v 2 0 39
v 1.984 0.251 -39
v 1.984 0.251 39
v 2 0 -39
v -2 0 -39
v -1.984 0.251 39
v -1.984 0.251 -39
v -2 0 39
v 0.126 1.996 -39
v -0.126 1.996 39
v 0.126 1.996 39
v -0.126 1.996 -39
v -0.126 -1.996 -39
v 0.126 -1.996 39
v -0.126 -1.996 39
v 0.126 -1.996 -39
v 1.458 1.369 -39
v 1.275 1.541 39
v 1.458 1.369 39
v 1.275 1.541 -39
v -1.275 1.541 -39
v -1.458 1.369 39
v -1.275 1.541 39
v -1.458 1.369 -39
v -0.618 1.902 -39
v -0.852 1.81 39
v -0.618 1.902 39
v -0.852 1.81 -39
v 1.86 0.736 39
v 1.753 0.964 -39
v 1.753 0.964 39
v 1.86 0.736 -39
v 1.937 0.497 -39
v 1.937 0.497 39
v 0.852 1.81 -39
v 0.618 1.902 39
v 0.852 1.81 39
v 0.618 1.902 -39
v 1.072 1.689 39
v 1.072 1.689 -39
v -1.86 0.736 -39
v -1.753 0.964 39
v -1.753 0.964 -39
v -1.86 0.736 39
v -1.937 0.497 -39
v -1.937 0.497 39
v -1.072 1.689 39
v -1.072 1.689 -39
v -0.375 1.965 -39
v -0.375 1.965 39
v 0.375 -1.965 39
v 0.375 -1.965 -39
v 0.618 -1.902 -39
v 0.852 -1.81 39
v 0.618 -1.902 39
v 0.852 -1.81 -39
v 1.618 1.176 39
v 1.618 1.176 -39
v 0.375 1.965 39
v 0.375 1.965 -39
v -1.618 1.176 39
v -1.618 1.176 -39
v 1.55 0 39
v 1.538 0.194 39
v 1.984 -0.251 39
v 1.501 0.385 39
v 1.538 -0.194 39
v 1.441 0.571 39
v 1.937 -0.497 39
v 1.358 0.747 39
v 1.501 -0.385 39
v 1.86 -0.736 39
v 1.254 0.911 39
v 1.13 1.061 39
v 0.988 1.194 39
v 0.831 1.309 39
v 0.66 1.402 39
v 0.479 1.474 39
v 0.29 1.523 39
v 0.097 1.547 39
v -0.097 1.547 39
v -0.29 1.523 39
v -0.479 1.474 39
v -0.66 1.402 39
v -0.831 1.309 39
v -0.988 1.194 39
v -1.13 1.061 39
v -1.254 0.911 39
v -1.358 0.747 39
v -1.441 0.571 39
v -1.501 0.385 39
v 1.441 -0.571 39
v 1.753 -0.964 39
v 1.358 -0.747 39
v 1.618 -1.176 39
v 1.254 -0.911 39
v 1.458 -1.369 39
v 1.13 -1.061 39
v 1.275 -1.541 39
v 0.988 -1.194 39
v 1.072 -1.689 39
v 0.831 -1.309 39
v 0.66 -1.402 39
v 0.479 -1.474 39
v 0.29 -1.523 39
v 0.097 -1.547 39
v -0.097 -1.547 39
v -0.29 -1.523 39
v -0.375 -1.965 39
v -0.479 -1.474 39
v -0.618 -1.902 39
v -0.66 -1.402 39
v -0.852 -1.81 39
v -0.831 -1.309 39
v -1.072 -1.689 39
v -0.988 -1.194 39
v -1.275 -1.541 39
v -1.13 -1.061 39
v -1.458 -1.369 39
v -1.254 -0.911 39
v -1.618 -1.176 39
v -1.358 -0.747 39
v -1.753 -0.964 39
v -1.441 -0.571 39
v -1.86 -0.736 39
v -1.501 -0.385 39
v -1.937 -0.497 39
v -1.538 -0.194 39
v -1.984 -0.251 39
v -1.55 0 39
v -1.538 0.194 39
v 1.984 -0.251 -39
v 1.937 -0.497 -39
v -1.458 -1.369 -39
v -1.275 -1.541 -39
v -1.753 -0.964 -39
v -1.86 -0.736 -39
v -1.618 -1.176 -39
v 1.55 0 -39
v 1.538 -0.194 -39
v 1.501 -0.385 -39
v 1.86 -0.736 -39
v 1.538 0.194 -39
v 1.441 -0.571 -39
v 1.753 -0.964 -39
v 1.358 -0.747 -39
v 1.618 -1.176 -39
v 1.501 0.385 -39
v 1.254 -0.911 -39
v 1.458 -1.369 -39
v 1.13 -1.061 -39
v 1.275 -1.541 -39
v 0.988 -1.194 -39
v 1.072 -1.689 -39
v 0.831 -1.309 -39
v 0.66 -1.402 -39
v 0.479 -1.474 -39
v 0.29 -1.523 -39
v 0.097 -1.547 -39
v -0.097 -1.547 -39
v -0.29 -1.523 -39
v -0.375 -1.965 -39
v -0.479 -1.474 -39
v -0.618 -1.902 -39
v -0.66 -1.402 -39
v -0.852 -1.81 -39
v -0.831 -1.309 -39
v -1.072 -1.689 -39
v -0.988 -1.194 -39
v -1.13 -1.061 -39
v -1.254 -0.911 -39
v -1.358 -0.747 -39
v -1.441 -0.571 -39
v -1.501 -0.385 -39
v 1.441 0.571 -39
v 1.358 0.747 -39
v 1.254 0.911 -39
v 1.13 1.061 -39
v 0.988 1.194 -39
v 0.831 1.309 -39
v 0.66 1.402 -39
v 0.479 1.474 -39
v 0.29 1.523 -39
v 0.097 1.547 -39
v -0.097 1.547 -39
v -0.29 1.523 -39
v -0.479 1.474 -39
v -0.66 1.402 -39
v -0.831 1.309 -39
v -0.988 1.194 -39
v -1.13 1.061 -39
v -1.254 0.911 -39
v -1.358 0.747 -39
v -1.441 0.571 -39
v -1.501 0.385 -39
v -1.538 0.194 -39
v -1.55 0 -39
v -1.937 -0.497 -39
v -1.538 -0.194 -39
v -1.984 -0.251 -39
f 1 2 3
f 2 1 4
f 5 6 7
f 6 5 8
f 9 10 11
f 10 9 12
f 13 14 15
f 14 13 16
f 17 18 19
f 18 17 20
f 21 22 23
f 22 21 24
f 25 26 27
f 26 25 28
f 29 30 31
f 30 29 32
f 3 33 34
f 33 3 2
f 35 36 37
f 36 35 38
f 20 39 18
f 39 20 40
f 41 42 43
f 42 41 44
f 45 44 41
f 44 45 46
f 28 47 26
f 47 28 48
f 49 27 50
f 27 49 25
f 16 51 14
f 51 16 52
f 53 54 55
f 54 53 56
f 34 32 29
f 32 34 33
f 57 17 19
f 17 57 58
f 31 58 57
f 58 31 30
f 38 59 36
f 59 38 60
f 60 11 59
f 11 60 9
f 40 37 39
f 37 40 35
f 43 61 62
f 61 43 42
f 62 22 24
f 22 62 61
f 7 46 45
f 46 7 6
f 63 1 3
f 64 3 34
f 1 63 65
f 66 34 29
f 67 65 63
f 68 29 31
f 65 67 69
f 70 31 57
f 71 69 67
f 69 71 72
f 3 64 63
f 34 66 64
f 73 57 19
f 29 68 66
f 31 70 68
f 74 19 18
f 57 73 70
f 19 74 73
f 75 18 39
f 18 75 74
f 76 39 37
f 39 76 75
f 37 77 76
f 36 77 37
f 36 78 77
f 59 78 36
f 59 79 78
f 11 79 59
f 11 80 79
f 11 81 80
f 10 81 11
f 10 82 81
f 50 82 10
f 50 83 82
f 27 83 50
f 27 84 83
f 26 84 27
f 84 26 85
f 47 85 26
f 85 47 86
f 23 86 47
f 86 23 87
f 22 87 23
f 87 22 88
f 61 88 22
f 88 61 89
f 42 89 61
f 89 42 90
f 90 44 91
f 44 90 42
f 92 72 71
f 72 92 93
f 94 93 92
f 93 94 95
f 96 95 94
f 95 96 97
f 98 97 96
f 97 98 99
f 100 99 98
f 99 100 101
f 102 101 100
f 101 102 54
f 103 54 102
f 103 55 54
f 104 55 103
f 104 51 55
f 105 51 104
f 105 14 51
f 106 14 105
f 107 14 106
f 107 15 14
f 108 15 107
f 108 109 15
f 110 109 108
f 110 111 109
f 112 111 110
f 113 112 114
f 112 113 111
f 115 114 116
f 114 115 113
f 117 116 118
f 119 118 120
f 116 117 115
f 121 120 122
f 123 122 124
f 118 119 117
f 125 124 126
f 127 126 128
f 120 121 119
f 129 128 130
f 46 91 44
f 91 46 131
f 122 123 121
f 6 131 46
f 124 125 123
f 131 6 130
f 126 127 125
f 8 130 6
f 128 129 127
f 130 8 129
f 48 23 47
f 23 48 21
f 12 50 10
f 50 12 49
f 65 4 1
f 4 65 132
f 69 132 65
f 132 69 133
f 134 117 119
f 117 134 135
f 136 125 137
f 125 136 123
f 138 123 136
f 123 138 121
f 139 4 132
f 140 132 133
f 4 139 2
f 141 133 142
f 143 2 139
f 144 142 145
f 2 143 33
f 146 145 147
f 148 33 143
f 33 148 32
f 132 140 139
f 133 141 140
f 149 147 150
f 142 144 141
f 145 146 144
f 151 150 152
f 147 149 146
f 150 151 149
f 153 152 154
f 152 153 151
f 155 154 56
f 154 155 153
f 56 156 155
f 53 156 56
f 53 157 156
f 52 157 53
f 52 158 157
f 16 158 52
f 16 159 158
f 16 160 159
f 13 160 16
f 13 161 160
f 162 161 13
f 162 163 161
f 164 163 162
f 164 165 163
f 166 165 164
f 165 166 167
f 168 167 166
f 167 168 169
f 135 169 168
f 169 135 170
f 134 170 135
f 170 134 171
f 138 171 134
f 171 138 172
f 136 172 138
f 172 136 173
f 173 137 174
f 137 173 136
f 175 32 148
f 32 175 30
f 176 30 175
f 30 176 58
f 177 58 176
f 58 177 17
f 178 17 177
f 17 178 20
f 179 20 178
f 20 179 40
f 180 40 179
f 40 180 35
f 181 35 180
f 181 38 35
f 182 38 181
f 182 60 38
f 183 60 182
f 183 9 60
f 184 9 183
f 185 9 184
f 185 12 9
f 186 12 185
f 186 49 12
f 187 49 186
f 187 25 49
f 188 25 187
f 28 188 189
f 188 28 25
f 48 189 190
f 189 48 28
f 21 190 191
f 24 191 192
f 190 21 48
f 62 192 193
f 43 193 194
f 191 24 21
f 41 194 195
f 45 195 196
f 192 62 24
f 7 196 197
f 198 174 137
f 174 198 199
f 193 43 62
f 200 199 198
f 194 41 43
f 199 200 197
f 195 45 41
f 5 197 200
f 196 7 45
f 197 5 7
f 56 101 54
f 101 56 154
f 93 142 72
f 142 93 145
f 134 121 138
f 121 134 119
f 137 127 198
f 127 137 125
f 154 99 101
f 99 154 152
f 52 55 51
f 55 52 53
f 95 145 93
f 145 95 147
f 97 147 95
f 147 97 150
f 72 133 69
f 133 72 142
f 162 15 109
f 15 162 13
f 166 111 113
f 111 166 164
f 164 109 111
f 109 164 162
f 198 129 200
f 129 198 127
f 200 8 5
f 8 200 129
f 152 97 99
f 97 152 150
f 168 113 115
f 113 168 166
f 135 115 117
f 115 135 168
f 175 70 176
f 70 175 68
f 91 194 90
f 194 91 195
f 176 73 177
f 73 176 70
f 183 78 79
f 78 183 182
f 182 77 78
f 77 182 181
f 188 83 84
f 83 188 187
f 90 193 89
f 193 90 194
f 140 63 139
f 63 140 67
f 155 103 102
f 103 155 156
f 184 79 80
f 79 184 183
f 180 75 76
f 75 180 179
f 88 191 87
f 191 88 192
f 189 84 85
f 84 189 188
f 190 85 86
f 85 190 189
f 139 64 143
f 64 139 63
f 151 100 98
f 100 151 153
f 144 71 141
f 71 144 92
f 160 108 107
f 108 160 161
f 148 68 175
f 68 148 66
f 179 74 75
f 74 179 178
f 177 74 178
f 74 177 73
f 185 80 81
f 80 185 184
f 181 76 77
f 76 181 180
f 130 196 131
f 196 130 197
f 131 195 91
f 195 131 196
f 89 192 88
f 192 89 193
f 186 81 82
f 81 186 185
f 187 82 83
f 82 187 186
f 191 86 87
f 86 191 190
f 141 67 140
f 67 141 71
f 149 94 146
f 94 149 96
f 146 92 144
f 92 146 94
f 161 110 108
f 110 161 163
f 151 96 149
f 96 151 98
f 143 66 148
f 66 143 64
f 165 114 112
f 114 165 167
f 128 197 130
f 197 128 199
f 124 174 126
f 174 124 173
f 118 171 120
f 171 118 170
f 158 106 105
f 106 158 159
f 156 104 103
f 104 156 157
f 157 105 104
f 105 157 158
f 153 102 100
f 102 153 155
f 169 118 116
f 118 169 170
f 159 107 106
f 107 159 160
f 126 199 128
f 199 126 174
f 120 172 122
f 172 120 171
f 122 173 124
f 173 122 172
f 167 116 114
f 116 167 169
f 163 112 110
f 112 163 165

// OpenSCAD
$fn = 50;


difference() {
	union() {
		translate(v = [0, 0, -39.0000000000]) {
			cylinder(h = 78, r = 2.0000000000);
		}
	}
	union() {
		translate(v = [0, 0, -100.0000000000]) {
			cylinder(h = 200, r = 1.5500000000);
		}
	}
}
